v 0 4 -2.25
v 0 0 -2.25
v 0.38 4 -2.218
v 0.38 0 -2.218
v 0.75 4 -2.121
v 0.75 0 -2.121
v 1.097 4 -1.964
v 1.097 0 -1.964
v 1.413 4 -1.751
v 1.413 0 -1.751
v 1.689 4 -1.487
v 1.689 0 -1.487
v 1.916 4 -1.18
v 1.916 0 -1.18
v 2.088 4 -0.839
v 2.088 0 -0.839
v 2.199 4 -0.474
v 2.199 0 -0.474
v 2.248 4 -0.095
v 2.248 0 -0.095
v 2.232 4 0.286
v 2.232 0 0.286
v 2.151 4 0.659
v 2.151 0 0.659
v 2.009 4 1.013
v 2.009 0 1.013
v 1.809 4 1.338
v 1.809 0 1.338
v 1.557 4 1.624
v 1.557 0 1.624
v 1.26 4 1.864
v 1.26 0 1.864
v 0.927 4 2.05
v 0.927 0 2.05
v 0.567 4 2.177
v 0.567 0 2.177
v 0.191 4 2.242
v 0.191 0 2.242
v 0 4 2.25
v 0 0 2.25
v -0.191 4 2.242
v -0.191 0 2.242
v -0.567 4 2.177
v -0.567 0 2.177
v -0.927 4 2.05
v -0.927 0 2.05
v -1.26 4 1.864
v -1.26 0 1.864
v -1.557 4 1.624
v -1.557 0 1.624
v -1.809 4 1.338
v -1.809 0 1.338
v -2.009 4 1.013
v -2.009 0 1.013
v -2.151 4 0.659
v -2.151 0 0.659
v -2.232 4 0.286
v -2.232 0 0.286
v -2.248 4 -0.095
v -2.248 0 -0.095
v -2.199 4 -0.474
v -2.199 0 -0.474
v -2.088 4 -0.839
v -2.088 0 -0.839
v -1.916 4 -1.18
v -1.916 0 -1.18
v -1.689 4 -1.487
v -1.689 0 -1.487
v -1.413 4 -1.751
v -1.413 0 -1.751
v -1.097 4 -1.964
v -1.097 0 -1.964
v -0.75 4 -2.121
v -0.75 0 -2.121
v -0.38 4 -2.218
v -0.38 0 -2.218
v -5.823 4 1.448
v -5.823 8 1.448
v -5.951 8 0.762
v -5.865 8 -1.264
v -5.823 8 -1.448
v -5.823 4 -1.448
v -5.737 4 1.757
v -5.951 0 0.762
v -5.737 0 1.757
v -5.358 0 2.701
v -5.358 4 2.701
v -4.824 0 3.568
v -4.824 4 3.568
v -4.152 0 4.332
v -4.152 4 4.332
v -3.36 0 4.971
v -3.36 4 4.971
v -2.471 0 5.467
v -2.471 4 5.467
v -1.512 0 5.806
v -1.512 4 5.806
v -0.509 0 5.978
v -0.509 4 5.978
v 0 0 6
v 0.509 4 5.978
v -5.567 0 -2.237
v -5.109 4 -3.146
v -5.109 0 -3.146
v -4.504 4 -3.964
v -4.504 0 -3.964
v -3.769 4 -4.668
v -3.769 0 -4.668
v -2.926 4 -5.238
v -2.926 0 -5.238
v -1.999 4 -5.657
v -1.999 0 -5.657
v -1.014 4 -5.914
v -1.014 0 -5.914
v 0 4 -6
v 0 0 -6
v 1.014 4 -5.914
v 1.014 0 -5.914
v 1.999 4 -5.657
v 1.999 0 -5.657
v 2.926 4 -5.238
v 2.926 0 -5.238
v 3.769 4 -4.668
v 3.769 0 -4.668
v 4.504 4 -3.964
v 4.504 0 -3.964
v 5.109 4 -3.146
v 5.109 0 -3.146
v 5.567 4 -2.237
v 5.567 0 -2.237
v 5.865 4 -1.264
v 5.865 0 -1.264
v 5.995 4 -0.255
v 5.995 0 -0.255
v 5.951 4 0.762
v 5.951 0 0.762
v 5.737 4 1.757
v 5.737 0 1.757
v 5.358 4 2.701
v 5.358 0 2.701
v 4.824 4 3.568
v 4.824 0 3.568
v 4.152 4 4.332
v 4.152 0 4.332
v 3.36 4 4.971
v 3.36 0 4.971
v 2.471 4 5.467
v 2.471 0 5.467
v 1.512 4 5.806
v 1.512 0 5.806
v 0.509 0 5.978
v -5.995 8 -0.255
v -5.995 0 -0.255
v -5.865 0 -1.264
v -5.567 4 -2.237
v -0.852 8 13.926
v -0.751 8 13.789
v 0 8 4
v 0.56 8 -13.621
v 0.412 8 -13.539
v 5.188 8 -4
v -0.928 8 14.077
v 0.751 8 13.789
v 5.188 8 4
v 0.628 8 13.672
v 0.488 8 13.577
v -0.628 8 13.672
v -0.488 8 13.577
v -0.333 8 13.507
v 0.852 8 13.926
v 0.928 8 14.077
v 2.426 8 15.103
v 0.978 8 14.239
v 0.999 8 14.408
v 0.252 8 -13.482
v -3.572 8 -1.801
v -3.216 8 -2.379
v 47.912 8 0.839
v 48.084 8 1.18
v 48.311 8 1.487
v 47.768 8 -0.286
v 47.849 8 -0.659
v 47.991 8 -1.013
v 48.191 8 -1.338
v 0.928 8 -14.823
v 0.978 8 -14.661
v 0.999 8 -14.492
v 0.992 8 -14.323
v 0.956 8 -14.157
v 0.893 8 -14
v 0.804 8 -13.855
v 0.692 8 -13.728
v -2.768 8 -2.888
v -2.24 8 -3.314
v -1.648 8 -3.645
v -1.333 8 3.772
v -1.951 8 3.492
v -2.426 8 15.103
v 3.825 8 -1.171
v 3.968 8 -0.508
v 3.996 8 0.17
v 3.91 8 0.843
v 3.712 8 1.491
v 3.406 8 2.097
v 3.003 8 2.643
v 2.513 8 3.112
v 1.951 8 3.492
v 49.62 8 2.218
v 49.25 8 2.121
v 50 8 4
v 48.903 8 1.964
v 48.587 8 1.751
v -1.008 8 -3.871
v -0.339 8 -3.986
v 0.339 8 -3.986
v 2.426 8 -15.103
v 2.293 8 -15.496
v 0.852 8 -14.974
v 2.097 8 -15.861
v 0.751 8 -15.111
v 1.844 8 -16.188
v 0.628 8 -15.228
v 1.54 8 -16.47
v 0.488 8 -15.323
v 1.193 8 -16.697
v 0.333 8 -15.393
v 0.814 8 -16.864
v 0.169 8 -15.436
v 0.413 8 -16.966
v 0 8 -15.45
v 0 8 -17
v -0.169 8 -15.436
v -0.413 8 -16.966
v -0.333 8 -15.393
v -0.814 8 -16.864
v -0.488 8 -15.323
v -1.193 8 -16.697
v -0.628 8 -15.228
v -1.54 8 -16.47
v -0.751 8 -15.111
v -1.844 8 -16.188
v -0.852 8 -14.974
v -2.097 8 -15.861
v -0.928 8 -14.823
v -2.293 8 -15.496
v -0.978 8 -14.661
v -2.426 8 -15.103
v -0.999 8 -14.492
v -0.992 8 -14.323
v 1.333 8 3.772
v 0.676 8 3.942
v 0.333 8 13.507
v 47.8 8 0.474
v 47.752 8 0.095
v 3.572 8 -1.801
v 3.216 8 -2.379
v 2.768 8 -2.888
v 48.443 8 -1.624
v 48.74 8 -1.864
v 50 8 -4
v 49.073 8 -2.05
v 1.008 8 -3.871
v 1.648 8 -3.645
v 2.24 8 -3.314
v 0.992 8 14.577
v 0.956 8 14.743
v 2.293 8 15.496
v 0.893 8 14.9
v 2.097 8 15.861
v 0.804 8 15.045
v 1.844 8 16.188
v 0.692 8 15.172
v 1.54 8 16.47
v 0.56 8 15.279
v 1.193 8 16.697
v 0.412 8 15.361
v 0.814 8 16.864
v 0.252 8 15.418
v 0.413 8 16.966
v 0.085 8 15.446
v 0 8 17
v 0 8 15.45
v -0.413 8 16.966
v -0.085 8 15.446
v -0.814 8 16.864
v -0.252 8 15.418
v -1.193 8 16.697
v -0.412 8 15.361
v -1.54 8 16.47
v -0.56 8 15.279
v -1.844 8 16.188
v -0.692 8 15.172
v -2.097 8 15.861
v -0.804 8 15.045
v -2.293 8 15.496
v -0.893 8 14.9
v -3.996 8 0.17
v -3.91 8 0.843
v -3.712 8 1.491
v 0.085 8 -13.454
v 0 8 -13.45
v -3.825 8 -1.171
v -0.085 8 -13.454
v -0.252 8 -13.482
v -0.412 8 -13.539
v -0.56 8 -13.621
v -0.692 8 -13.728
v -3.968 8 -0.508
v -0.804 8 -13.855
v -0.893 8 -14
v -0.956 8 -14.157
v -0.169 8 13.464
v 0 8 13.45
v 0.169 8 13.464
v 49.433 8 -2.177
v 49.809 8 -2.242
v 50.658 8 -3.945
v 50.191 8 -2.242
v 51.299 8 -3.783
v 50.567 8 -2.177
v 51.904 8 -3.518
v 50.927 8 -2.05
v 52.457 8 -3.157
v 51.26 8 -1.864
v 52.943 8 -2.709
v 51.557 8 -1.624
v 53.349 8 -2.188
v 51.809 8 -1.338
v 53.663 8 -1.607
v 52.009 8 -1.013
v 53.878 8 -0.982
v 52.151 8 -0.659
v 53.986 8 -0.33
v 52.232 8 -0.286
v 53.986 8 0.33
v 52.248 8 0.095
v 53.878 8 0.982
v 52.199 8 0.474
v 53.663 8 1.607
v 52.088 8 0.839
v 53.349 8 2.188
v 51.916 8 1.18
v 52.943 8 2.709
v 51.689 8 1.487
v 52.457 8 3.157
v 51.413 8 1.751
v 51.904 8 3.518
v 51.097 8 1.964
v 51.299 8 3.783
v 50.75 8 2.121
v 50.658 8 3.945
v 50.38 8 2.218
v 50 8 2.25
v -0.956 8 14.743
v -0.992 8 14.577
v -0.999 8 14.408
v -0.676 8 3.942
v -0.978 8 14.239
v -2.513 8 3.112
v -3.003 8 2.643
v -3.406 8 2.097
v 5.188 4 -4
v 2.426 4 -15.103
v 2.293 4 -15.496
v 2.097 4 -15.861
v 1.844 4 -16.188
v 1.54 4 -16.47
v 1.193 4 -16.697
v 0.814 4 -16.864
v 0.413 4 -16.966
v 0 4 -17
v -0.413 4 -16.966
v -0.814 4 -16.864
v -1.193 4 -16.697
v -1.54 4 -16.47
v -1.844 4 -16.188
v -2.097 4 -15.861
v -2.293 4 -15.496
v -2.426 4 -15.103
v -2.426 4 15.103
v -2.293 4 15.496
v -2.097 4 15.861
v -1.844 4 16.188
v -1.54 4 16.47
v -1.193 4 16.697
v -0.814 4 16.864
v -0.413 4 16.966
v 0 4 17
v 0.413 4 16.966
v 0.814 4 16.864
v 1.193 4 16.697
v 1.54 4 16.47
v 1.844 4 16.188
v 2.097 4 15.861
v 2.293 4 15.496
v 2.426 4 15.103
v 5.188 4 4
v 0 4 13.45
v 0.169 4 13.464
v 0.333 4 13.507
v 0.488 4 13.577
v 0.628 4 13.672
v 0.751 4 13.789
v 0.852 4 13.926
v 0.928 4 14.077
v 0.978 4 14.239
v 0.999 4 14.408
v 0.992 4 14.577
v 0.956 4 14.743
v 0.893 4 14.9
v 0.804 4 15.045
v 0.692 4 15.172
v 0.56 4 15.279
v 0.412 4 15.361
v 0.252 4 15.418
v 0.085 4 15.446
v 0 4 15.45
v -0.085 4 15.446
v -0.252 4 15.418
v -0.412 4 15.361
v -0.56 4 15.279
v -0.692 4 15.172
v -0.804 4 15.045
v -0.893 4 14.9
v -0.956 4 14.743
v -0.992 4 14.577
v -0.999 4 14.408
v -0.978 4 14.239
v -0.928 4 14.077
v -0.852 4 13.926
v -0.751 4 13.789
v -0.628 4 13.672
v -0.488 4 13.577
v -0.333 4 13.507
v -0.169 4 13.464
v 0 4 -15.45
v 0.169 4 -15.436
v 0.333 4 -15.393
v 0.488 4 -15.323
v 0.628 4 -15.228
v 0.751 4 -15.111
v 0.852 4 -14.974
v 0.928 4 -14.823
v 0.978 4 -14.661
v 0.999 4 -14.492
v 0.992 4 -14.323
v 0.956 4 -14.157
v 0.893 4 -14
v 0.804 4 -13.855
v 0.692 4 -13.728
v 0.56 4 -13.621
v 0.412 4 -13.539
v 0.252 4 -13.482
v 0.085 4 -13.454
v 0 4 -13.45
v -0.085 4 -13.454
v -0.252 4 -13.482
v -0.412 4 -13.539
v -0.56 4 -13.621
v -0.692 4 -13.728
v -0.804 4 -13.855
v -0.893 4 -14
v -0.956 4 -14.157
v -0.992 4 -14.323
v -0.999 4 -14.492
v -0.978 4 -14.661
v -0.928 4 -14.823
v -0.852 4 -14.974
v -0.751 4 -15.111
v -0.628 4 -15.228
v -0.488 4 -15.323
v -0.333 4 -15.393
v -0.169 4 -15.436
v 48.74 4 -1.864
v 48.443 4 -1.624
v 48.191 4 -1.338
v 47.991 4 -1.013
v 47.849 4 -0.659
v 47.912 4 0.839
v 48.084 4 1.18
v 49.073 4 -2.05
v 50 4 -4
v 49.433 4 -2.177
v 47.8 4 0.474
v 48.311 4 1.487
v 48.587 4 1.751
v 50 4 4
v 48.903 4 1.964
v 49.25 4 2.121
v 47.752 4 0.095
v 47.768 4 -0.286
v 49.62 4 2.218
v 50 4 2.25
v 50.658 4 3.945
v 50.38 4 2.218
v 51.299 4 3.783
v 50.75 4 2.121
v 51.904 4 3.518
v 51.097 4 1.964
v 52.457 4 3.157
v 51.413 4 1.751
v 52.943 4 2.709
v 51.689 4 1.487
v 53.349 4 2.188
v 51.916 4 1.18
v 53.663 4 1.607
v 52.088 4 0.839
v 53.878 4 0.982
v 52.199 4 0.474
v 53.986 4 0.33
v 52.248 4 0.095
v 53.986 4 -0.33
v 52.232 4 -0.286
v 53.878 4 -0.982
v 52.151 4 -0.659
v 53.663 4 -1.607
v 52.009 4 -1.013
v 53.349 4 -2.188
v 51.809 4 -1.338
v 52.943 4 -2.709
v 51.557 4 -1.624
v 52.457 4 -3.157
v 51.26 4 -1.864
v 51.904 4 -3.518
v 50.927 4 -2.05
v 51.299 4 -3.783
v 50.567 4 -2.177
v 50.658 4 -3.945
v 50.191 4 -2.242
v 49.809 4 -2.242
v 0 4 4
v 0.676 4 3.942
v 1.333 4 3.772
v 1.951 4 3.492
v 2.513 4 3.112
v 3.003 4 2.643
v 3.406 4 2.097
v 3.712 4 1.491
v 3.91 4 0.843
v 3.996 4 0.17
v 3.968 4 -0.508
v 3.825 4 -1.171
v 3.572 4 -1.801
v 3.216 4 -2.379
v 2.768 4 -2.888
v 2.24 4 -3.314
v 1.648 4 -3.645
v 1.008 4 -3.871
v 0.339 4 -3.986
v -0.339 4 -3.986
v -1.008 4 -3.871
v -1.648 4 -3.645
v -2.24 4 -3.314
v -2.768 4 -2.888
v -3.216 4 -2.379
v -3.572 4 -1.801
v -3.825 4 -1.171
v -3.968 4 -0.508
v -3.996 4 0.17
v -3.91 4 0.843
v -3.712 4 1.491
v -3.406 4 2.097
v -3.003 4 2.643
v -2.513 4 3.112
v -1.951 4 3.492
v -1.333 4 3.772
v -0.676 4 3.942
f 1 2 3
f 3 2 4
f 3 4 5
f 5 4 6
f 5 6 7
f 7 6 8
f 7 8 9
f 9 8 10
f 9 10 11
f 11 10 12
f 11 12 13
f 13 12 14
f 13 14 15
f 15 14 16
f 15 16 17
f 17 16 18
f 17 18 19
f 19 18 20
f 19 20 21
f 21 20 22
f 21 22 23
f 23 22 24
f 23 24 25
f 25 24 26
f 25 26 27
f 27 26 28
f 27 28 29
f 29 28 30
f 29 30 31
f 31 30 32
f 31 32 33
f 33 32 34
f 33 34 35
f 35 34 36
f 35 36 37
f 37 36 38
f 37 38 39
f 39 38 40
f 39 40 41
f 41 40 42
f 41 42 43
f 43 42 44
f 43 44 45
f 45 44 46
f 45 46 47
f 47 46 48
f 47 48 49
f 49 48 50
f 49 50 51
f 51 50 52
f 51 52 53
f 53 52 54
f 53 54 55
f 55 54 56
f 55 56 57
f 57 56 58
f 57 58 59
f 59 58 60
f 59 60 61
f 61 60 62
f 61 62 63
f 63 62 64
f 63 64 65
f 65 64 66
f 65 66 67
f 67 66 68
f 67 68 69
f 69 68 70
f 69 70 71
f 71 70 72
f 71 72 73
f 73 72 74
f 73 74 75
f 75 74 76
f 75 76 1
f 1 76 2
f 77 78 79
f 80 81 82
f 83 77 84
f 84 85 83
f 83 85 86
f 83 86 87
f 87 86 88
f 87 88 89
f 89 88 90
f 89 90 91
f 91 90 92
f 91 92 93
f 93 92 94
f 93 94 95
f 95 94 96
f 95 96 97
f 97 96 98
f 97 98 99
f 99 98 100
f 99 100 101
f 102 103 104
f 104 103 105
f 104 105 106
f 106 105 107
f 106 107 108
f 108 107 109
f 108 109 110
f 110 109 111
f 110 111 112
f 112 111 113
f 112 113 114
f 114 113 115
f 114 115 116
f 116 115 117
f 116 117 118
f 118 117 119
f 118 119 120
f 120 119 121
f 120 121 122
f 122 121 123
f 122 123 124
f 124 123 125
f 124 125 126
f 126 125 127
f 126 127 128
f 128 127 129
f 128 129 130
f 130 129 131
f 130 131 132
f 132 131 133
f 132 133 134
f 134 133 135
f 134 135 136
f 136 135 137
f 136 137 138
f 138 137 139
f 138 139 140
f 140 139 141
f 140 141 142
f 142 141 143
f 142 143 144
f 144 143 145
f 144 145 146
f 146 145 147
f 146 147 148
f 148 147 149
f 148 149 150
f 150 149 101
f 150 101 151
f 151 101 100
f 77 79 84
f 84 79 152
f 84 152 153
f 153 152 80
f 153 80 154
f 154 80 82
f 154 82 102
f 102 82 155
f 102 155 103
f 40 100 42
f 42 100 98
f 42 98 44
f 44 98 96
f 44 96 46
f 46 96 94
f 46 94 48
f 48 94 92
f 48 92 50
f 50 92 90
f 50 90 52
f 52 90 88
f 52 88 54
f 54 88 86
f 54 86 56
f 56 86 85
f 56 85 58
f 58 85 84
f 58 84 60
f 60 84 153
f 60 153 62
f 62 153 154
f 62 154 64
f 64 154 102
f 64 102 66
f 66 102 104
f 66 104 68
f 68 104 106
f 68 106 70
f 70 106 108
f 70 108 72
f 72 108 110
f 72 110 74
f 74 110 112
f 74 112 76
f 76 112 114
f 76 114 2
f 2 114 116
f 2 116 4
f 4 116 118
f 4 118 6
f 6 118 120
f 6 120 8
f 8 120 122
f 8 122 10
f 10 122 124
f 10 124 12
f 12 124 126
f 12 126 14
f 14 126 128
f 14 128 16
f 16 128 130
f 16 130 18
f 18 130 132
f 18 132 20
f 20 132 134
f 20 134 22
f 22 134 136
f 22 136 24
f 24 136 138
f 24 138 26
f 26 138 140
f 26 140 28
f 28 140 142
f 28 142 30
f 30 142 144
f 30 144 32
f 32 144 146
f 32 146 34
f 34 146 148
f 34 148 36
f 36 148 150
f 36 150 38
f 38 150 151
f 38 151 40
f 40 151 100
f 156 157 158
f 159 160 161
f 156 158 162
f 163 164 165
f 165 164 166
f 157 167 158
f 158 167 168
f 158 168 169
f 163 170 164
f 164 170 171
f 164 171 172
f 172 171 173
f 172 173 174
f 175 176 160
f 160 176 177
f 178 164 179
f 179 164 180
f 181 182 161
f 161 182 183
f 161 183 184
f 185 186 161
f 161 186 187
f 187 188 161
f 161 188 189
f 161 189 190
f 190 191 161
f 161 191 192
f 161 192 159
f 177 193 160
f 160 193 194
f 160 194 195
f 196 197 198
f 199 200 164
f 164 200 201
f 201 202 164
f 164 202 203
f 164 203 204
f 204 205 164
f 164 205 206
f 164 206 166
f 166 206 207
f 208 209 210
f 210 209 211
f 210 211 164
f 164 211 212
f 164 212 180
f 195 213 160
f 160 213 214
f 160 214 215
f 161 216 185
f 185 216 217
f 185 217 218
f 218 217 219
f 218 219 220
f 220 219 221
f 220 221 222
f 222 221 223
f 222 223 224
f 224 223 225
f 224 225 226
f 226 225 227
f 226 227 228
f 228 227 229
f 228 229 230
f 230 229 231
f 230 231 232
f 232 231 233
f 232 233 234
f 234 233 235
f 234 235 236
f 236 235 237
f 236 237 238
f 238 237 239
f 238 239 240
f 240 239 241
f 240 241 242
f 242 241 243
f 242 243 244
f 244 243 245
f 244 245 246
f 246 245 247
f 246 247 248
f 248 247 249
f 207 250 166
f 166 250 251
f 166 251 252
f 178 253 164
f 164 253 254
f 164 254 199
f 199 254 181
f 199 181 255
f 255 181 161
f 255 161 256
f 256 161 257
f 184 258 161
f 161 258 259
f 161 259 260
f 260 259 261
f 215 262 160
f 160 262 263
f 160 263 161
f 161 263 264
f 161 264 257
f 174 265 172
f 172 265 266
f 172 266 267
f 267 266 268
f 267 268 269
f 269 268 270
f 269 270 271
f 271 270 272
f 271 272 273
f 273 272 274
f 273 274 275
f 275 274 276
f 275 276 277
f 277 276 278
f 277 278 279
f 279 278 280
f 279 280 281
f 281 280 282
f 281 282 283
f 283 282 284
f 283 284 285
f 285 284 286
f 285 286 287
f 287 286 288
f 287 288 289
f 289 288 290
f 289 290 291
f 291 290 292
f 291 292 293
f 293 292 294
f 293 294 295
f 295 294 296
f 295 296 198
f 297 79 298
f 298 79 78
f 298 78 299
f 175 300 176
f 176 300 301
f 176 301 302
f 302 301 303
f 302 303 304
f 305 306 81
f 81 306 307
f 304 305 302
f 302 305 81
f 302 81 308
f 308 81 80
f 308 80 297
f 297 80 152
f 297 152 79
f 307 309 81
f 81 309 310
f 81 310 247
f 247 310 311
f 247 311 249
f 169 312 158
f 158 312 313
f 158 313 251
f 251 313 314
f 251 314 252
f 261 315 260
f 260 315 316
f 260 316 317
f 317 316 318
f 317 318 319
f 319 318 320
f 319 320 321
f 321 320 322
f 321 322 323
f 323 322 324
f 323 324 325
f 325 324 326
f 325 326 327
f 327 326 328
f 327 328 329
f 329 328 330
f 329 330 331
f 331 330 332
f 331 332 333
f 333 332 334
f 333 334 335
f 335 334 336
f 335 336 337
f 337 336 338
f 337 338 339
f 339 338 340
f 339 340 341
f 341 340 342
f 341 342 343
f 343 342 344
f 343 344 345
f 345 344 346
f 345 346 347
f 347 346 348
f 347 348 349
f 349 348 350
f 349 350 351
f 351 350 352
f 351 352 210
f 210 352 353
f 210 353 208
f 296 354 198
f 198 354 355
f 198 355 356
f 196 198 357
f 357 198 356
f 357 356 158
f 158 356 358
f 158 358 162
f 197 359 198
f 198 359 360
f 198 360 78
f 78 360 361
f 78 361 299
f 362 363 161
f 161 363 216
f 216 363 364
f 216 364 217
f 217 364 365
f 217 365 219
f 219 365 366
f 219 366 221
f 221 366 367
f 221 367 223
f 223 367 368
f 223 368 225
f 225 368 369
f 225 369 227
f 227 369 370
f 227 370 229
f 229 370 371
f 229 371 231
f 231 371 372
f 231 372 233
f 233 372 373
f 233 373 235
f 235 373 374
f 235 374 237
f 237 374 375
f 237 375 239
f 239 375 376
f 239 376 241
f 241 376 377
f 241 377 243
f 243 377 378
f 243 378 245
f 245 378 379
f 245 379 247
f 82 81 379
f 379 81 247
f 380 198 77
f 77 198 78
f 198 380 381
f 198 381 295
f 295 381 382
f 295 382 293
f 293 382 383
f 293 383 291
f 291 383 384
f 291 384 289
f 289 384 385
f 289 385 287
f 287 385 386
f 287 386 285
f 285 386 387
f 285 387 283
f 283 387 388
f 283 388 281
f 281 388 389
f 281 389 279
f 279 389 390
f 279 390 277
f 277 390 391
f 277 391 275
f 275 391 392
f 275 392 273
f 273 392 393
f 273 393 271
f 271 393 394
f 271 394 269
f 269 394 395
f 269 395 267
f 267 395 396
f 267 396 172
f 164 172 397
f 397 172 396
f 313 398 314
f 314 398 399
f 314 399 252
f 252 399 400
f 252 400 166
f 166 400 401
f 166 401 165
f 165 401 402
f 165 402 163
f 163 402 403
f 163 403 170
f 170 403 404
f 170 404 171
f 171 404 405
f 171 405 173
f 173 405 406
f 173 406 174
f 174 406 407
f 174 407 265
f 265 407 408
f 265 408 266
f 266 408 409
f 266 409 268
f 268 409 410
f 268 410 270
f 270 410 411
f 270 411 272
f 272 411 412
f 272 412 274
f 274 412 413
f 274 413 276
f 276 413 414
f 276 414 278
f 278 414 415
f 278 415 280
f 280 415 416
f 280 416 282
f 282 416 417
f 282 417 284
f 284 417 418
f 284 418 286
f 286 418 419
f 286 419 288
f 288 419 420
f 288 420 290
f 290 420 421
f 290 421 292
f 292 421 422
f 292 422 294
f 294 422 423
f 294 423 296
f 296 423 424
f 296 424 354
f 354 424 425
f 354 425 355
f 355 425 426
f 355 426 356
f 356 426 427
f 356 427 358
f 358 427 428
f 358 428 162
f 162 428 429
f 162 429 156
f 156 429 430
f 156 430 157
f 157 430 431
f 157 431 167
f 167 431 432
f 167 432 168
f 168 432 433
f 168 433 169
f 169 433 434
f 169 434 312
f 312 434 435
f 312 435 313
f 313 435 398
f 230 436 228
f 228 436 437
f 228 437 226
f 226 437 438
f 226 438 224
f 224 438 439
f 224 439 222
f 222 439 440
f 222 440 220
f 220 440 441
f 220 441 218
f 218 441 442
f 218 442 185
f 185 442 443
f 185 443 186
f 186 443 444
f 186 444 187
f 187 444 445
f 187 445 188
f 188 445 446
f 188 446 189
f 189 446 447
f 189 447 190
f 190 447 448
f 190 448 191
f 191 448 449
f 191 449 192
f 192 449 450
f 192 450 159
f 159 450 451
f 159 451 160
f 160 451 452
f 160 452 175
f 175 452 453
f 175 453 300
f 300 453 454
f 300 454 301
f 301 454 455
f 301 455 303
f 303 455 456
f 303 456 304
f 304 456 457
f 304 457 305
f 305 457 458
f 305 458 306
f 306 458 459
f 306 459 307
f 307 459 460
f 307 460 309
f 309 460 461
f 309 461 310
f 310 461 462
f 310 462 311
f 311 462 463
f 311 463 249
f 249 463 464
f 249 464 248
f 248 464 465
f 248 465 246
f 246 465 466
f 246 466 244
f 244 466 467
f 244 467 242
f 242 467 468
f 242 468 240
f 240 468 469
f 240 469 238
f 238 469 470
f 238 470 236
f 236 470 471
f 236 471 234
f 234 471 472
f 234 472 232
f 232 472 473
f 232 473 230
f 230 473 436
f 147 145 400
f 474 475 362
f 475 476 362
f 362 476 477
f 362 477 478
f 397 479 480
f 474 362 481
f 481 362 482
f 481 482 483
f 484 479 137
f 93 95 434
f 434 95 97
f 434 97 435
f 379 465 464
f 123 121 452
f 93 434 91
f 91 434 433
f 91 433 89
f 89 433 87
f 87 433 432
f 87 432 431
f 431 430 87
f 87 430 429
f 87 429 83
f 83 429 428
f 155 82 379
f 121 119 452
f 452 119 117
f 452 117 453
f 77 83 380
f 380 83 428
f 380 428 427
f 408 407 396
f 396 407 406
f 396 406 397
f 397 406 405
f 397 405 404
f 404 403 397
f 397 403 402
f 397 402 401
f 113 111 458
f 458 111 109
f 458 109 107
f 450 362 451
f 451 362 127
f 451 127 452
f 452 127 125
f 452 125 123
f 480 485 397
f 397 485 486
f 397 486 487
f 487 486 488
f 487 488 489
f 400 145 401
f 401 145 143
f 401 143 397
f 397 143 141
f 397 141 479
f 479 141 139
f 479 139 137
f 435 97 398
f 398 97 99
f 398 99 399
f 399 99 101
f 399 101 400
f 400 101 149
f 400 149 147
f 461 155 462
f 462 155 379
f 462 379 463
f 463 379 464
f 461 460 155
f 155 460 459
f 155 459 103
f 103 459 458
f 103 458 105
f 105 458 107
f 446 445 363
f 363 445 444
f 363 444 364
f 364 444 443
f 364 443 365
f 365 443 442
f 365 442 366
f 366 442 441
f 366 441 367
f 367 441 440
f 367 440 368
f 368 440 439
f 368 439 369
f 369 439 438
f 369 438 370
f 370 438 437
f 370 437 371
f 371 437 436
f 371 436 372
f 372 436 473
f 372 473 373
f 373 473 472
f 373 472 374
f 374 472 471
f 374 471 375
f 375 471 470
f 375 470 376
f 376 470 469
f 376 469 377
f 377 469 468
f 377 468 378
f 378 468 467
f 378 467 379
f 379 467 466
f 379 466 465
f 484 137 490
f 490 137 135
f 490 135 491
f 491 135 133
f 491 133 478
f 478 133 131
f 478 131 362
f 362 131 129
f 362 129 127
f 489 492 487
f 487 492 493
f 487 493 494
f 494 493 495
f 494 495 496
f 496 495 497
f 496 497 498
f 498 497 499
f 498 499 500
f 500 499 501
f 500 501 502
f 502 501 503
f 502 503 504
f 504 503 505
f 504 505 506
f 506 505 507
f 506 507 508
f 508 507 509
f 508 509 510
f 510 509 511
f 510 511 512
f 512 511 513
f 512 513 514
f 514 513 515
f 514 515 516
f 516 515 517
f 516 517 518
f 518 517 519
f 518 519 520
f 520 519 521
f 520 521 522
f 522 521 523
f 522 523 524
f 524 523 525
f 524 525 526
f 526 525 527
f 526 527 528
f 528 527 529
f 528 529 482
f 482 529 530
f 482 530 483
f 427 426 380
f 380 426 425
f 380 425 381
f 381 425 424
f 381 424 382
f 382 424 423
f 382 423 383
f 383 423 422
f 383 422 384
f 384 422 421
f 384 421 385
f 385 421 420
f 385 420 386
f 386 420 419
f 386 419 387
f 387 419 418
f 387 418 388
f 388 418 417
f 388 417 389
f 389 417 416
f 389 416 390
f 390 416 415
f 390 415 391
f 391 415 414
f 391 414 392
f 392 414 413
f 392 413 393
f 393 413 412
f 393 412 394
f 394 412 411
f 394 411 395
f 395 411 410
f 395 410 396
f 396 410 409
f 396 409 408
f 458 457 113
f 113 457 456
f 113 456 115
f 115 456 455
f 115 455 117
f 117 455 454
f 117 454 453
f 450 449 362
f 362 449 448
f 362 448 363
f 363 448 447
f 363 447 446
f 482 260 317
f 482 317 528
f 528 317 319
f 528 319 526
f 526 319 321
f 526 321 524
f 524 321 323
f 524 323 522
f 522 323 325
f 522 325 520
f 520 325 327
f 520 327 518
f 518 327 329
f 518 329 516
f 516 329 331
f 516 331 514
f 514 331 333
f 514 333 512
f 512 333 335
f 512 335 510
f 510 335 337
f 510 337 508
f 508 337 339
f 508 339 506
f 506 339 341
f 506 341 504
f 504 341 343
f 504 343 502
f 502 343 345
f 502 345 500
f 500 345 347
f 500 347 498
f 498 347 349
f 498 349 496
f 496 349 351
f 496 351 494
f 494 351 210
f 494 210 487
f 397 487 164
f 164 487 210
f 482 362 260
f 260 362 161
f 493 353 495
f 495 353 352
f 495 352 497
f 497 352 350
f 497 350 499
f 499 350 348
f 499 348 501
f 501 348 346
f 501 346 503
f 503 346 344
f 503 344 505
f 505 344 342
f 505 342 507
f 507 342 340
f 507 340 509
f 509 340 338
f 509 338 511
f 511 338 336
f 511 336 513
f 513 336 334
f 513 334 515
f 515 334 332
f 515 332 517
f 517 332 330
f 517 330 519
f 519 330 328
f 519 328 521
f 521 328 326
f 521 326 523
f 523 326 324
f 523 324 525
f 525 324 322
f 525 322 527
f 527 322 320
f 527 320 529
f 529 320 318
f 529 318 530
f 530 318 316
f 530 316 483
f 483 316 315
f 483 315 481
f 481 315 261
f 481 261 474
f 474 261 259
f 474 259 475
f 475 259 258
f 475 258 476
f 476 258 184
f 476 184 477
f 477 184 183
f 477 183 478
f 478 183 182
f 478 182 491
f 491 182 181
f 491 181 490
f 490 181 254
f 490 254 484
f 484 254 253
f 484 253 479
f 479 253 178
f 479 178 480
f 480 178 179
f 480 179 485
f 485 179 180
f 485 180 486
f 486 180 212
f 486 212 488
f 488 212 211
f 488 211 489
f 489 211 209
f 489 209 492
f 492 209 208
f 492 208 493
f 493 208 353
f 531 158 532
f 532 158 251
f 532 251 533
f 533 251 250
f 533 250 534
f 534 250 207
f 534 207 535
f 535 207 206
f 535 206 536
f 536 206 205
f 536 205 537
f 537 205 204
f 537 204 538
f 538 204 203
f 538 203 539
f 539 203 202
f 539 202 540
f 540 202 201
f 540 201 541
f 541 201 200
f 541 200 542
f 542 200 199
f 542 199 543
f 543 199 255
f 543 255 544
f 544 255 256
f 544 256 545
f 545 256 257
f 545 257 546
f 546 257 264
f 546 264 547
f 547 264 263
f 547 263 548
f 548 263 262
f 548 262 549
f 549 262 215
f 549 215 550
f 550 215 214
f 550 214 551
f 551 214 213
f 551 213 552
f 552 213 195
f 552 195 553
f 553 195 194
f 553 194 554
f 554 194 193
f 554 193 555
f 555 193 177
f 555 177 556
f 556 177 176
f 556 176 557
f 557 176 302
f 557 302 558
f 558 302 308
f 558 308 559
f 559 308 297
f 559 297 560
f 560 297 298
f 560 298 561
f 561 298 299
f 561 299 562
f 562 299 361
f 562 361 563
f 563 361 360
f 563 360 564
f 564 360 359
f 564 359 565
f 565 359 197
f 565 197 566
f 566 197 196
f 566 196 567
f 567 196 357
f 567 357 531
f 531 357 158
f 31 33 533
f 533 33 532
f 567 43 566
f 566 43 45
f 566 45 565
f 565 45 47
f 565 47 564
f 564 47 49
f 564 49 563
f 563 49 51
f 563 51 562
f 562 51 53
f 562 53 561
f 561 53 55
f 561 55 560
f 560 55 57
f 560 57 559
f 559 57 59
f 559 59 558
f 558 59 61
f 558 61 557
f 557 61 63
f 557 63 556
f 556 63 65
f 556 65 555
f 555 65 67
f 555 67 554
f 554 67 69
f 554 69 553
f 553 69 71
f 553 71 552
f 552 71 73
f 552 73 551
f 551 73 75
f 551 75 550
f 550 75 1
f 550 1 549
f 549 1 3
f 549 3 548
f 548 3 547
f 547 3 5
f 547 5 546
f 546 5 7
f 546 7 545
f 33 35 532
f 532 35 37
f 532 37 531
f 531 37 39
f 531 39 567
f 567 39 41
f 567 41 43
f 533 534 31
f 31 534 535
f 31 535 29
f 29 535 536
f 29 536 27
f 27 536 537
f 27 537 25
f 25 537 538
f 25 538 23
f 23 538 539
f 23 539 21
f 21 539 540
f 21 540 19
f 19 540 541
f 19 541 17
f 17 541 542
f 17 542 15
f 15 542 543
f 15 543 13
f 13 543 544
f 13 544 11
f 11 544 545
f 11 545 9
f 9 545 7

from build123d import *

# Parameters (mm, degrees)
SKETCH1_R           = 2.25
BOSS_EXTRUDE1_DEPTH = 8
SKETCH2_R           = 1
CUT_EXTRUDE1_DEPTH  = 10
SKETCH3_W           = 12
SKETCH3_H           = 4
SKETCH4_R           = 2.25
BOSS_EXTRUDE2_DEPTH = 4
SKETCH5_R           = 4
CUT_EXTRUDE2_DEPTH  = 4


with BuildPart() as part:
    # Sketch1 → Boss-Extrude1 (new body)
    with BuildSketch(Plane(origin=(0, 0, 0), x_dir=(1, 0, 0), z_dir=(0, 1, 0))):
        with BuildLine():
            Line((-5.822585081, 1.448275862), (-2.426077117, 15.103448276))
            ThreePointArc((-2.426077117, 15.103448276), (0, 17), (2.426077117, 15.103448276))
            Line((2.426077117, 15.103448276), (5.822585081, 1.448275862))
            ThreePointArc((5.822585081, 1.448275862), (6, 0), (5.822585081, -1.448275862))
            Line((5.822585081, -1.448275862), (2.426077117, -15.103448276))
            ThreePointArc((2.426077117, -15.103448276), (0, -17), (-2.426077117, -15.103448276))
            Line((-2.426077117, -15.103448276), (-5.822585081, -1.448275862))
            ThreePointArc((-5.822585081, -1.448275862), (-6, 0), (-5.822585081, 1.448275862))
        make_face()
        with Locations(Location((0, 0, 0), (0, 0, 270))):
            Circle(SKETCH1_R, mode=Mode.SUBTRACT)
    extrude(amount=BOSS_EXTRUDE1_DEPTH)

    # Sketch2 → Cut-Extrude1 (cut)
    with BuildSketch(Plane.XZ):
        with Locations(Location((0, -14.45, 0), (0, 0, 270))):
            Circle(SKETCH2_R)
        with Locations(Location((0, 14.45, 0), (0, 0, 90))):
            Circle(SKETCH2_R)
    extrude(amount=-CUT_EXTRUDE1_DEPTH, mode=Mode.SUBTRACT)

    # Sketch3 → Cut-Revolve1 (revolve, cut)
    with BuildSketch(Plane(origin=(0, 0, 0), x_dir=(0, 0, -1), z_dir=(1, 0, 0)), mode=Mode.PRIVATE) as cut_revolve1_sk:
        with Locations((12, 2)):
            Rectangle(SKETCH3_W, SKETCH3_H)
    revolve(cut_revolve1_sk.sketch.rotate(Axis((0, 0, 0), (0, 1, 0)), 76.032037325), axis=Axis((0, 0, 0), (0, 1, 0)), mode=Mode.SUBTRACT)

    # Sketch4 → Boss-Extrude2 (add)
    with BuildSketch(Plane(origin=(0, 8, 0), x_dir=(1, 0, 0), z_dir=(0, 1, 0))):
        with BuildLine():
            Line((50, 4), (5.187884098, 4))
            Line((5.187884098, 4), (5.187884098, -4))
            Line((5.187884098, -4), (50, -4))
            ThreePointArc((50, -4), (54, 0), (50, 4))
        make_face()
        with Locations(Location((50, 0, 0), (0, 0, 270))):
            Circle(SKETCH4_R, mode=Mode.SUBTRACT)
    extrude(amount=-BOSS_EXTRUDE2_DEPTH)

    # Sketch5 → Cut-Extrude2 (cut)
    with BuildSketch(Plane(origin=(0, 8, 0), x_dir=(1, 0, 0), z_dir=(0, 1, 0))):
        with Locations(Location((0, 0, 0), (0, 0, 270))):
            Circle(SKETCH5_R)
    extrude(amount=-CUT_EXTRUDE2_DEPTH, mode=Mode.SUBTRACT)


solid = part.part
